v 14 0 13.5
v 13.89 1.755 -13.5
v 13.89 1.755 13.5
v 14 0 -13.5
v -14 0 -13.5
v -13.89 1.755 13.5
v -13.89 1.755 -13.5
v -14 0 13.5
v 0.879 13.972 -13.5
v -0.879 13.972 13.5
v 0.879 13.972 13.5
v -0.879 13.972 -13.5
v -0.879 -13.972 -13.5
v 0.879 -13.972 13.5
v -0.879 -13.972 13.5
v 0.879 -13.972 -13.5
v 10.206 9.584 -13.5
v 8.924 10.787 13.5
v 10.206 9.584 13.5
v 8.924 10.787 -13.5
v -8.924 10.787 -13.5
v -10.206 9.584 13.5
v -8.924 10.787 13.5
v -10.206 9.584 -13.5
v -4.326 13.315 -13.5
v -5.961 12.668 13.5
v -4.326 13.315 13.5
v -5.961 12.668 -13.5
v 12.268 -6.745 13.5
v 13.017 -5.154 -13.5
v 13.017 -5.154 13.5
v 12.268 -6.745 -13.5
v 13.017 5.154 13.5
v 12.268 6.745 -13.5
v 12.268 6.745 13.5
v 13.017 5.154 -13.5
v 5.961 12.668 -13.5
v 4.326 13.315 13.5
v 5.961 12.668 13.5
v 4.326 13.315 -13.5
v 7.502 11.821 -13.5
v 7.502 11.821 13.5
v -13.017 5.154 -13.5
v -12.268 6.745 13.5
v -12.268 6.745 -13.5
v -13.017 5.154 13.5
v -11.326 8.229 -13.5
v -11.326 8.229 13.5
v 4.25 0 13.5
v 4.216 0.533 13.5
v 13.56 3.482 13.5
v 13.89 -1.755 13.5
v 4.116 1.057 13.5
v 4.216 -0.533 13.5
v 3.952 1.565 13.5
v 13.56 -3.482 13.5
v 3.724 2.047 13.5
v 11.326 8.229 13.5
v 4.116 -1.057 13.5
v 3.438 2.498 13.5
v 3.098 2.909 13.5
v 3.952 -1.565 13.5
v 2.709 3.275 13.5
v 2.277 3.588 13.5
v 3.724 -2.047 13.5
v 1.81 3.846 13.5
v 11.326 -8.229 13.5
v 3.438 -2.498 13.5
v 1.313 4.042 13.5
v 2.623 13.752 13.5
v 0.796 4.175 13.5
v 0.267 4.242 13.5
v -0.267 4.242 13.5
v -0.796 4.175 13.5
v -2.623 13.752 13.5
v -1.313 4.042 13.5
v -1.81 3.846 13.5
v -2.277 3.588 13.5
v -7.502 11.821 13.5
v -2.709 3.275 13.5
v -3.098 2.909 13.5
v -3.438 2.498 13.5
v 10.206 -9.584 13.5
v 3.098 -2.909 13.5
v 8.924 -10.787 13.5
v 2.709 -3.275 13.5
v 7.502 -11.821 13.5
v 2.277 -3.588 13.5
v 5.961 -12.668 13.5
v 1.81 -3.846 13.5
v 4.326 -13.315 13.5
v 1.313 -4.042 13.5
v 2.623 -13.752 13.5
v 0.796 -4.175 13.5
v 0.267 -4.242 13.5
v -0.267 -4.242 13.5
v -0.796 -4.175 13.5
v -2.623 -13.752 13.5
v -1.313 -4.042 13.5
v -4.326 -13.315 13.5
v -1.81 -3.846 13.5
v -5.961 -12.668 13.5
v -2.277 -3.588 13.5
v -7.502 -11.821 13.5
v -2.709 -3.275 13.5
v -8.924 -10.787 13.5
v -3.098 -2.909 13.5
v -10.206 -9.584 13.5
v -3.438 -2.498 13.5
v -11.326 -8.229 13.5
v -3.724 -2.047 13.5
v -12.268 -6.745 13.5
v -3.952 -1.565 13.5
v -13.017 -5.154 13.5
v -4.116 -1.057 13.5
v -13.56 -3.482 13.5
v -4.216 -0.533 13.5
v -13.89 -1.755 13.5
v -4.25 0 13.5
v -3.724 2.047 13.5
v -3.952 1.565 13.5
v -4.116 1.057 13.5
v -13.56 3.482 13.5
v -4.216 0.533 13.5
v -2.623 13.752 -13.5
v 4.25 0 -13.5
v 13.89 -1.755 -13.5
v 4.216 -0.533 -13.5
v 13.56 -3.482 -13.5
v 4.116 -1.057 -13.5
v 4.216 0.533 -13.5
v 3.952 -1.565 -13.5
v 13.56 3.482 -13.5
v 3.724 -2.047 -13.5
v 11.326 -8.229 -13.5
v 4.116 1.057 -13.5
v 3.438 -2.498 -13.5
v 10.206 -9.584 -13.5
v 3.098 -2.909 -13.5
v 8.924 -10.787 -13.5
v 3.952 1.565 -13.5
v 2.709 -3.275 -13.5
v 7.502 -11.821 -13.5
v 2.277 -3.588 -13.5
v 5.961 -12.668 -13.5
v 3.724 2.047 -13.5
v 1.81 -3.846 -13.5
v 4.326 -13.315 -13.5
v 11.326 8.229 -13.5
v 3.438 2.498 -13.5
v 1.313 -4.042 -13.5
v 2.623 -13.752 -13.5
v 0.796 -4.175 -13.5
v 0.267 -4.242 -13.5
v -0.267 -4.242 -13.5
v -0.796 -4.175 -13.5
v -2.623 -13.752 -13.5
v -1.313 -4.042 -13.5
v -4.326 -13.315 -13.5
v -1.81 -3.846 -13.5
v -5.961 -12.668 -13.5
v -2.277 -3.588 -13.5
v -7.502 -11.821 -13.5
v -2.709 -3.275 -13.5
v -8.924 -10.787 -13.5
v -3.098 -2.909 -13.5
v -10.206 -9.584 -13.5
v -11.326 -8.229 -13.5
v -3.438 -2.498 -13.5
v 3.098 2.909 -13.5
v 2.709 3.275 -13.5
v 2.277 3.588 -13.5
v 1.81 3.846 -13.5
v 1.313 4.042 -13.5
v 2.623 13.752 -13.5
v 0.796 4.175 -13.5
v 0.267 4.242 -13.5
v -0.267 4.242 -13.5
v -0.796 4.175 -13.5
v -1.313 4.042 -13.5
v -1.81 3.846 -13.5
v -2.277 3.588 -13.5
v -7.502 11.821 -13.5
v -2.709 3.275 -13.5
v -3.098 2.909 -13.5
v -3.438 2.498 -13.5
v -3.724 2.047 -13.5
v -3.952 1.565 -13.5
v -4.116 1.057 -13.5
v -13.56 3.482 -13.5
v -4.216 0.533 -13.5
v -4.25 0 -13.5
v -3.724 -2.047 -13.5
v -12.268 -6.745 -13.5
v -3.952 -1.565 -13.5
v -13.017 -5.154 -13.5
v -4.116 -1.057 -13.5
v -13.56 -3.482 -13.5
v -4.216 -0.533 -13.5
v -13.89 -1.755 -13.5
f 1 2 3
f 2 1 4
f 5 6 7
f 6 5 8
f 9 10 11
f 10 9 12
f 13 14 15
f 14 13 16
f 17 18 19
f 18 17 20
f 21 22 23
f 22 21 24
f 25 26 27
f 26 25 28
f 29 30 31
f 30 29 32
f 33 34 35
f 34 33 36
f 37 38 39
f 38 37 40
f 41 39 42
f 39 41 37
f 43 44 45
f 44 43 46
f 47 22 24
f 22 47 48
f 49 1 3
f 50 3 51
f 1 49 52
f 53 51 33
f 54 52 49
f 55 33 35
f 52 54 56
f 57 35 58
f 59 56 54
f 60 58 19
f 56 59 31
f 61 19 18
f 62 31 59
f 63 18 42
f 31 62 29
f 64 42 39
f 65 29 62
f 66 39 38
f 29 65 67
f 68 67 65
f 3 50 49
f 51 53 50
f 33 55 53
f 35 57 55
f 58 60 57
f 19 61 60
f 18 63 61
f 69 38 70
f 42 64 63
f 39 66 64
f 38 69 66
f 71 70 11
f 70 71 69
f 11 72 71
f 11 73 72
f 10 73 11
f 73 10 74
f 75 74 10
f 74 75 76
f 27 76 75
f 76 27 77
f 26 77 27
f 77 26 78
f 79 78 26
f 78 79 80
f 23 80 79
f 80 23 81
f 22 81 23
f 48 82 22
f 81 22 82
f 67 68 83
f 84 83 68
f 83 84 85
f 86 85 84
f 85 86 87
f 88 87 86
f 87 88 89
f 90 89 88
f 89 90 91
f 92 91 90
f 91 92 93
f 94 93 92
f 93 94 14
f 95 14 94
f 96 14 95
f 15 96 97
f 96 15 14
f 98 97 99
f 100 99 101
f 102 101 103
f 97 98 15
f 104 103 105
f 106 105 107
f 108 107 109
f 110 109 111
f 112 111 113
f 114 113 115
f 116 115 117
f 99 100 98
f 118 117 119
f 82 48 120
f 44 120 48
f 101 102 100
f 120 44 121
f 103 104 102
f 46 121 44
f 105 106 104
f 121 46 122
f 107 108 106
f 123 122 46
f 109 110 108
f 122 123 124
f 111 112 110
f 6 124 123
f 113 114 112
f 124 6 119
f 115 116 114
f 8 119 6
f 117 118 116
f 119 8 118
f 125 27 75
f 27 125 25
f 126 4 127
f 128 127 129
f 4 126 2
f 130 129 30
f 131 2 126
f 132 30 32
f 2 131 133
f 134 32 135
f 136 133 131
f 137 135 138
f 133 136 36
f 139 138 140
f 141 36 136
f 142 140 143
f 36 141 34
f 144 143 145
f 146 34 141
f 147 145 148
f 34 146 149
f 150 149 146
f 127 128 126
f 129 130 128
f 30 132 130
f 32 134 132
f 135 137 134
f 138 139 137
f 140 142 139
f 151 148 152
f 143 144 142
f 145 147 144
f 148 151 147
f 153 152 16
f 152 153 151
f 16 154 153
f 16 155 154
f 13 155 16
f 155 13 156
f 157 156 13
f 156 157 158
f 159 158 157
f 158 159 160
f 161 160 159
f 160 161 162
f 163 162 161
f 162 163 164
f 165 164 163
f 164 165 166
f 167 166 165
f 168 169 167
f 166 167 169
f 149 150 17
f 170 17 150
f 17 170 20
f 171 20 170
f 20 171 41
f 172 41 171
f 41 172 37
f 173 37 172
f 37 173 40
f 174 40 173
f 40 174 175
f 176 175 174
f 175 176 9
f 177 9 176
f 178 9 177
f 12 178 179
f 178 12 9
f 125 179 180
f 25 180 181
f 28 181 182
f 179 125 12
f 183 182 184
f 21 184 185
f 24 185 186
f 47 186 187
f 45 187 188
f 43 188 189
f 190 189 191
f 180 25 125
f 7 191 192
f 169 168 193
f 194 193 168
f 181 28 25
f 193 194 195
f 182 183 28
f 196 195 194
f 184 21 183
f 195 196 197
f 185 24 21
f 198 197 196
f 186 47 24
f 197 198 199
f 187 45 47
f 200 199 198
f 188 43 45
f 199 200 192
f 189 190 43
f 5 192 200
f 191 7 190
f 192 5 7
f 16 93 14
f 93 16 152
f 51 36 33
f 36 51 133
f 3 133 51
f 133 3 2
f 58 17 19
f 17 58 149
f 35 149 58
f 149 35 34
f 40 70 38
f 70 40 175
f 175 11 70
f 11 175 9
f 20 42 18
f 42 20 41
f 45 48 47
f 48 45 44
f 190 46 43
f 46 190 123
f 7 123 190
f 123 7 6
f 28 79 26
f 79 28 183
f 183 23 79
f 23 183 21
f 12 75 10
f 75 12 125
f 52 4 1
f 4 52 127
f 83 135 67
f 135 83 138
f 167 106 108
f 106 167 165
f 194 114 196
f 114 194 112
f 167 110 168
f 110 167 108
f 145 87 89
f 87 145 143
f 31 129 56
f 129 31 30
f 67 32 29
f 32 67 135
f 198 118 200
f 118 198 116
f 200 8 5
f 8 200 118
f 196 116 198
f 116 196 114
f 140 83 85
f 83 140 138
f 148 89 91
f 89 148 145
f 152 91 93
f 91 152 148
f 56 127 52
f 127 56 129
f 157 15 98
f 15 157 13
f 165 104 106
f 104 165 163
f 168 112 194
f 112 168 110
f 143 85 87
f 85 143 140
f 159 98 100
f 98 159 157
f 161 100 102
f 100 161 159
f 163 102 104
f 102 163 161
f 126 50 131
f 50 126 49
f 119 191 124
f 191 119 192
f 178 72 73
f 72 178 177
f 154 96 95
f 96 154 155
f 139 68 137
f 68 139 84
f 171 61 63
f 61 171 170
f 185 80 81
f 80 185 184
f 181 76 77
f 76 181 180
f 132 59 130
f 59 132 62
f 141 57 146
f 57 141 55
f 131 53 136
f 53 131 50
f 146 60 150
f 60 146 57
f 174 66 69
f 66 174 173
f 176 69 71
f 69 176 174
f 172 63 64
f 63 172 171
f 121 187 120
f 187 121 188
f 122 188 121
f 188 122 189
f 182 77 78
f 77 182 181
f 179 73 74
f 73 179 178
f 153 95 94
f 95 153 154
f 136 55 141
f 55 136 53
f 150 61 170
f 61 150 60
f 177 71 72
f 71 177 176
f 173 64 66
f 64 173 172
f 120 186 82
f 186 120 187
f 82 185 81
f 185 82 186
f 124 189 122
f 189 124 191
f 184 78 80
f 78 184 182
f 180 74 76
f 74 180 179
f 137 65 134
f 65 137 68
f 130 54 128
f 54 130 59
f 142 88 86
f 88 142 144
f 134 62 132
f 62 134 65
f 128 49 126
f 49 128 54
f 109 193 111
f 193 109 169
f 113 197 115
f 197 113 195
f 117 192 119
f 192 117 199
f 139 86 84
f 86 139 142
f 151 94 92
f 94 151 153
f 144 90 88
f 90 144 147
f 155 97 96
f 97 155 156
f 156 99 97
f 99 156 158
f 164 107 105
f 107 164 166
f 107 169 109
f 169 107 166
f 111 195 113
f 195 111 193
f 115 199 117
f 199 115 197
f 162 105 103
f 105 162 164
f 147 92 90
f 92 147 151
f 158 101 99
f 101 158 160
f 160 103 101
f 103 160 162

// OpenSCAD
$fn = 50;


difference() {
	union() {
		translate(v = [0, 0, -13.5000000000]) {
			cylinder(h = 27, r = 14.0000000000);
		}
	}
	union() {
		translate(v = [0, 0, -100.0000000000]) {
			cylinder(h = 200, r = 4.2500000000);
		}
	}
}
